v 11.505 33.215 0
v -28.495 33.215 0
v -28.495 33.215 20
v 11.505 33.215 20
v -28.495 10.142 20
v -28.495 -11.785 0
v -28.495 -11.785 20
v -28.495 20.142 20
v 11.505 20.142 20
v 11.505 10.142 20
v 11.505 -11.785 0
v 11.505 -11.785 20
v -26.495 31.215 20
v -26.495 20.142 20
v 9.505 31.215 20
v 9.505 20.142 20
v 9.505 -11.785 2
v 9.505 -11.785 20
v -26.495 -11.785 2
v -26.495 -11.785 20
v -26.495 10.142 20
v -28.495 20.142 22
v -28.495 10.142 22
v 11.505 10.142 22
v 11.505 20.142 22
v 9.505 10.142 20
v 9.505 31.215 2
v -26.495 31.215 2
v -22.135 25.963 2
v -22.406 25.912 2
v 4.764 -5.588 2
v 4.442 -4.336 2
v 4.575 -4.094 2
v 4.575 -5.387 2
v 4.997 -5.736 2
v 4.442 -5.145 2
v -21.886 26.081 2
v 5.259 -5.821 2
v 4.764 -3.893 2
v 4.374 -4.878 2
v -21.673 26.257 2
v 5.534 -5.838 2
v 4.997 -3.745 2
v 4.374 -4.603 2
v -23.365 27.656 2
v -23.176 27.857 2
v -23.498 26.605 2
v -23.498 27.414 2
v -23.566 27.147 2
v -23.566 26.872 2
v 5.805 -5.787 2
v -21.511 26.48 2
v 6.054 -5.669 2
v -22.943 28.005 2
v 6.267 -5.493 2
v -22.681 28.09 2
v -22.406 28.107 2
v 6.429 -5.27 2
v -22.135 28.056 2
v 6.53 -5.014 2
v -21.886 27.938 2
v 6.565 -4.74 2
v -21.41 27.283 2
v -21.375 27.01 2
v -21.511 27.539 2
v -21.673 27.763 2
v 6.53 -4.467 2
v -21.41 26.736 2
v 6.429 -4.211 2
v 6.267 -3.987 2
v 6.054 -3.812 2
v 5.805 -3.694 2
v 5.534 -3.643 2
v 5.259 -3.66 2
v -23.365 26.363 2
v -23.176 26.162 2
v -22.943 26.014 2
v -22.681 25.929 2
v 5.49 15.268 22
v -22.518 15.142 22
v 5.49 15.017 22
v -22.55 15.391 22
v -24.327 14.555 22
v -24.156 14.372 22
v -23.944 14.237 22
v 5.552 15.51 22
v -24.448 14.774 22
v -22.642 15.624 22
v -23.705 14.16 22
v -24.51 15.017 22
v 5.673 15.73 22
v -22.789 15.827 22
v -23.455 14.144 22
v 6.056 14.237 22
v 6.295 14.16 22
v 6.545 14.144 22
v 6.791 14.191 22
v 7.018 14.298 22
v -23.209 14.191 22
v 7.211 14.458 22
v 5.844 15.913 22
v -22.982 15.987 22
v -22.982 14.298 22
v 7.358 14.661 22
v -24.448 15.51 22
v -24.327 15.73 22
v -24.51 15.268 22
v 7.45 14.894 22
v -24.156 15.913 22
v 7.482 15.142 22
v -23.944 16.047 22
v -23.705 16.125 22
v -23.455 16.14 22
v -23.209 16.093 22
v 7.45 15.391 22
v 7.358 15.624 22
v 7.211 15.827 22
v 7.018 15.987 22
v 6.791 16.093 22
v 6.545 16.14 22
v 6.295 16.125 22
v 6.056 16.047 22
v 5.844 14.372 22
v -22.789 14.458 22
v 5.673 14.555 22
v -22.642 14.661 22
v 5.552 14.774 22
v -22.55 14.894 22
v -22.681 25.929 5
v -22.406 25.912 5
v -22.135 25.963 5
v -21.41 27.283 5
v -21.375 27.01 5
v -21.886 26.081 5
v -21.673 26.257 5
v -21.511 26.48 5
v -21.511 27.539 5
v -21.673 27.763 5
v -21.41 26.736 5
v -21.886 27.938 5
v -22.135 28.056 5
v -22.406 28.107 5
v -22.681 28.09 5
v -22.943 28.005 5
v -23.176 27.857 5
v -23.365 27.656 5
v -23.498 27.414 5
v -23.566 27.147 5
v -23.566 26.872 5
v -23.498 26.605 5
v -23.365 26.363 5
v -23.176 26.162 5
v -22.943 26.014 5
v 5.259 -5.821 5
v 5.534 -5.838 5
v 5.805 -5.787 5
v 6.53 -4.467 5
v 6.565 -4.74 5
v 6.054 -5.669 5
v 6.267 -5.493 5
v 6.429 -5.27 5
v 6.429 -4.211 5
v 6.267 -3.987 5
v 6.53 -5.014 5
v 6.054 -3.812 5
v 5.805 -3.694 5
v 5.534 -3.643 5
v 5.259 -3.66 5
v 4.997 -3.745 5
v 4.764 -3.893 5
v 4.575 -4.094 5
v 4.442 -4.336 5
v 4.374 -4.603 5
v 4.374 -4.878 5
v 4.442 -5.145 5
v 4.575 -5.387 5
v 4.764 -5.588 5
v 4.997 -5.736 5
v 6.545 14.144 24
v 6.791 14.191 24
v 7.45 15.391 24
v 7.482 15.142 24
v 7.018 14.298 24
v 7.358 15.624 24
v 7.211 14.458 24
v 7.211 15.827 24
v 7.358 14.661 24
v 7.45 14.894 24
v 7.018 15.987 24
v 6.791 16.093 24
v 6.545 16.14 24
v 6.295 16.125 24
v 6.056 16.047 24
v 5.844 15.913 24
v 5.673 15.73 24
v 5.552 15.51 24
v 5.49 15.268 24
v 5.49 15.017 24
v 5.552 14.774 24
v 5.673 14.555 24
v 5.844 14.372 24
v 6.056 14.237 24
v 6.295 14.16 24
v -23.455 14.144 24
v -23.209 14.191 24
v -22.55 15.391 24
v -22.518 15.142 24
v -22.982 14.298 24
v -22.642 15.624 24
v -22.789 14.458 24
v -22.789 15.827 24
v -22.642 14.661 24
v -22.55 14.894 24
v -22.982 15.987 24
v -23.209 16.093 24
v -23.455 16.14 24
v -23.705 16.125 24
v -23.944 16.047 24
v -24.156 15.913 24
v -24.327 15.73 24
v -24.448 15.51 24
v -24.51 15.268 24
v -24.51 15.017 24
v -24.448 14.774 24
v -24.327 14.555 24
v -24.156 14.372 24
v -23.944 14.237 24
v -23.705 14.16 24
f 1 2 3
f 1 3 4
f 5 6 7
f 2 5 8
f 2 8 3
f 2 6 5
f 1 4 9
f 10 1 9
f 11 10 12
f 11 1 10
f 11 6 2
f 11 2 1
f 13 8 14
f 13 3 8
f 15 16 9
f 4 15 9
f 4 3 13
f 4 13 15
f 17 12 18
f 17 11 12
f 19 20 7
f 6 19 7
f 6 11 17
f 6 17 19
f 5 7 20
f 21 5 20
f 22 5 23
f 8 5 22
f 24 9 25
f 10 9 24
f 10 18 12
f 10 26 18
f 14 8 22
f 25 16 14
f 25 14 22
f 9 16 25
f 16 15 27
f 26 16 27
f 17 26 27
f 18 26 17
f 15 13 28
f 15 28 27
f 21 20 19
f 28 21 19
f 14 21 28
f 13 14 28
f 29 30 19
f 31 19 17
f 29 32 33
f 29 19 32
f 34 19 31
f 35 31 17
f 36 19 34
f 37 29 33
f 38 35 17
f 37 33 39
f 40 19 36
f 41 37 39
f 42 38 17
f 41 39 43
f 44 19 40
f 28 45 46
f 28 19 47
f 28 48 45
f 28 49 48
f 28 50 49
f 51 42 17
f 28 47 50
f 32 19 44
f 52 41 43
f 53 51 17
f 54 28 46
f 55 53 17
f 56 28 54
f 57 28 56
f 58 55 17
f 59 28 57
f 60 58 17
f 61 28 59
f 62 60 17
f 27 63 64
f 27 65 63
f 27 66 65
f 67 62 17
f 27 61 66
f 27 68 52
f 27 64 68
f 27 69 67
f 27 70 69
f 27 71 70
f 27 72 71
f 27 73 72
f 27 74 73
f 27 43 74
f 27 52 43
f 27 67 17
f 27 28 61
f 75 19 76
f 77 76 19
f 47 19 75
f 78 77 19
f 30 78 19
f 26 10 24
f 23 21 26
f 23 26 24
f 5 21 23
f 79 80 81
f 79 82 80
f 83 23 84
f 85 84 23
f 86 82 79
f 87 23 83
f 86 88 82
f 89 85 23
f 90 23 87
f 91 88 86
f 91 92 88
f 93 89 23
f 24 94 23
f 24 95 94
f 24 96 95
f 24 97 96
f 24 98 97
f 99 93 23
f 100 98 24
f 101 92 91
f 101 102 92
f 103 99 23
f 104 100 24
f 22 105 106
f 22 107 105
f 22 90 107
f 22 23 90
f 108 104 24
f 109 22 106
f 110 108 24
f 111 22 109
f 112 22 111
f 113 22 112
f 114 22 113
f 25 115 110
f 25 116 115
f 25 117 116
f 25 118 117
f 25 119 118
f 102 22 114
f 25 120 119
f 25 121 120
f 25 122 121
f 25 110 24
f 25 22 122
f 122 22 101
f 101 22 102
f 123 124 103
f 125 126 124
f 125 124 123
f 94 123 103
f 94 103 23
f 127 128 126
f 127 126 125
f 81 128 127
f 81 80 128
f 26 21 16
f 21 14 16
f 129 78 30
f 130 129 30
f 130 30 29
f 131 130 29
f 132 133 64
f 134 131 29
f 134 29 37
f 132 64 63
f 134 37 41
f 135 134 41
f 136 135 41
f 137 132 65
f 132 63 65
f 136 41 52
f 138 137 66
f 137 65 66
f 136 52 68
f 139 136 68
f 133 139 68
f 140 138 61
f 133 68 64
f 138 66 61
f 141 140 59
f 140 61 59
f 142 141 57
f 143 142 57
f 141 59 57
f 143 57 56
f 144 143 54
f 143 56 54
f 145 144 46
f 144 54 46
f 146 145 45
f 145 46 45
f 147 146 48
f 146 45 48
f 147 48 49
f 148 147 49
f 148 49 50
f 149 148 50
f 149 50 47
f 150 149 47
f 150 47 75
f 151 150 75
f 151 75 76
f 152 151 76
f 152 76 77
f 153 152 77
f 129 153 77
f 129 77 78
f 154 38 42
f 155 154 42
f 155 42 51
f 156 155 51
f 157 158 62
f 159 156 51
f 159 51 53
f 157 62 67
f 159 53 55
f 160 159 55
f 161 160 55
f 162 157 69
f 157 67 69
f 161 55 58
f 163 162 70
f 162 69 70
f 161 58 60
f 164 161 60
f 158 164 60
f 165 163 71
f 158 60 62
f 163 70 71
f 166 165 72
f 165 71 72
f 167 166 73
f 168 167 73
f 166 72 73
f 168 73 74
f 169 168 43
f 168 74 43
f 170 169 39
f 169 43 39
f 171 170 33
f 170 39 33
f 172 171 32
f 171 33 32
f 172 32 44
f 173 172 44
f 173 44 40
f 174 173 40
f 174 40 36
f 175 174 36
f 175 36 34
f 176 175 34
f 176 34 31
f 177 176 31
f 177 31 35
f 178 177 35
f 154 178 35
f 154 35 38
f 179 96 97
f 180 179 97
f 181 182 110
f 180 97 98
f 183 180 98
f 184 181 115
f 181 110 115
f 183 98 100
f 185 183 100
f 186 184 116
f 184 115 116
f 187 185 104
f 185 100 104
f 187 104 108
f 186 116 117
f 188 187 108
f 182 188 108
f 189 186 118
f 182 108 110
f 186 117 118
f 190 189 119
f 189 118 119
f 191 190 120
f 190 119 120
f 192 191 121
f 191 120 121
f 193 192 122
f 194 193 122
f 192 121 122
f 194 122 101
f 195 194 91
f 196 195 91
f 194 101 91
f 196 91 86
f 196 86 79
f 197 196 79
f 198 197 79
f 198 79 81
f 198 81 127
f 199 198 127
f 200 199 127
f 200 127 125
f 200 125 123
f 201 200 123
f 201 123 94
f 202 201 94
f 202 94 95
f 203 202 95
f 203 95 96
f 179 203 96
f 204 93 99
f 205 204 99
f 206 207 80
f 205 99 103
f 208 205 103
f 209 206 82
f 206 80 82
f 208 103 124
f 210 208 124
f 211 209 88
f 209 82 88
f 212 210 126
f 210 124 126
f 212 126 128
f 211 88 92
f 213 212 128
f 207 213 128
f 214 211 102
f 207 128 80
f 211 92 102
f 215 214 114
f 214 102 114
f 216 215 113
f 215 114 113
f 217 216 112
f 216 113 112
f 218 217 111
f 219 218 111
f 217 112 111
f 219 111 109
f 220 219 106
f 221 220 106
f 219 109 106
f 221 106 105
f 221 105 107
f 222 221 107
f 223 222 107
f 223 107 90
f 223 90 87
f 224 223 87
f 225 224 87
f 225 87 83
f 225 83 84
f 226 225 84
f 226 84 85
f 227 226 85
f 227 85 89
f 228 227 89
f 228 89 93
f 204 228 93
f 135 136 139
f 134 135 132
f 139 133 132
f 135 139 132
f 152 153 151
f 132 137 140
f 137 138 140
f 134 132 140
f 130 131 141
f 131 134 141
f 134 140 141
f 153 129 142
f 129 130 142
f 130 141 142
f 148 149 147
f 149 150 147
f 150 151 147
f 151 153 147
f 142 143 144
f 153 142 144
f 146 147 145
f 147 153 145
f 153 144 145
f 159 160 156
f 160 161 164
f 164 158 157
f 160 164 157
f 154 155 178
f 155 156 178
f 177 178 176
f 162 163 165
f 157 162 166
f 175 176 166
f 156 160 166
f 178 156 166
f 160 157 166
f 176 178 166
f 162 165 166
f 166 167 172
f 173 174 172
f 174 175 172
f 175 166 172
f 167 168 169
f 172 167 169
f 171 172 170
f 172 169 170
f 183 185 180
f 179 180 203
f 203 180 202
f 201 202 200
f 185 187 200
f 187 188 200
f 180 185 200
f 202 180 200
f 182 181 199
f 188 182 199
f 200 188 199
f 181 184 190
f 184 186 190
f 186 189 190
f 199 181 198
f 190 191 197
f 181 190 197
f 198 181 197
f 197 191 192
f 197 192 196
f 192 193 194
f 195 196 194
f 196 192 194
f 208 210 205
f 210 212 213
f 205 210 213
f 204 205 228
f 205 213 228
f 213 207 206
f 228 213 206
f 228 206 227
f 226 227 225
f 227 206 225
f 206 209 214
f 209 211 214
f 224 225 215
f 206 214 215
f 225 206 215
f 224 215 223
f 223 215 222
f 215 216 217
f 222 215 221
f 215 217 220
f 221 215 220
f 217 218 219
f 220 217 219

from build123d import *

# Parameters (mm, degrees)
SKETCH_W     = 40
SKETCH_H     = 45
PAD_DEPTH    = 20
SKETCH001_W  = 36
SKETCH001_H  = 46.656231
POCKET_DEPTH = 18
SKETCH002_R  = 1.1
PAD001_DEPTH = 3
SKETCH003_W  = 40
SKETCH003_H  = 10
PAD002_DEPTH = 2
SKETCH004_R  = 1
PAD003_DEPTH = 2


with BuildPart() as part:
    # Sketch → Pad (new body)
    with BuildSketch(Plane.XY):
        with Locations((-8.49515, 10.714768)):
            Rectangle(SKETCH_W, SKETCH_H)
    extrude(amount=PAD_DEPTH)

    # Sketch001 → Pocket (cut)
    with BuildSketch(Plane.XY.offset(20)):
        with Locations((-8.49515, 7.886653)):
            Rectangle(SKETCH001_W, SKETCH001_H)
    extrude(amount=-POCKET_DEPTH, mode=Mode.SUBTRACT)

    # Sketch002 → Pad001 (new body)
    with BuildSketch(Plane.XY.offset(2)):
        with Locations((-22.475006, 27.009532)):
            Circle(SKETCH002_R)
        with Locations((5.464994, -4.740468)):
            Circle(SKETCH002_R)
    extrude(amount=PAD001_DEPTH)

    # Sketch003 → Pad002 (new body)
    with BuildSketch(Plane.XY.offset(20)):
        with Locations((-8.49515, 15.142302)):
            Rectangle(SKETCH003_W, SKETCH003_H)
    extrude(amount=PAD002_DEPTH)

    # Sketch004 → Pad003 (new body)
    with BuildSketch(Plane.XY.offset(22)):
        with Locations((-23.518098, 15.142302)):
            Circle(SKETCH004_R)
        with Locations((6.481902, 15.142302)):
            Circle(SKETCH004_R)
    extrude(amount=PAD003_DEPTH)


solid = part.part
